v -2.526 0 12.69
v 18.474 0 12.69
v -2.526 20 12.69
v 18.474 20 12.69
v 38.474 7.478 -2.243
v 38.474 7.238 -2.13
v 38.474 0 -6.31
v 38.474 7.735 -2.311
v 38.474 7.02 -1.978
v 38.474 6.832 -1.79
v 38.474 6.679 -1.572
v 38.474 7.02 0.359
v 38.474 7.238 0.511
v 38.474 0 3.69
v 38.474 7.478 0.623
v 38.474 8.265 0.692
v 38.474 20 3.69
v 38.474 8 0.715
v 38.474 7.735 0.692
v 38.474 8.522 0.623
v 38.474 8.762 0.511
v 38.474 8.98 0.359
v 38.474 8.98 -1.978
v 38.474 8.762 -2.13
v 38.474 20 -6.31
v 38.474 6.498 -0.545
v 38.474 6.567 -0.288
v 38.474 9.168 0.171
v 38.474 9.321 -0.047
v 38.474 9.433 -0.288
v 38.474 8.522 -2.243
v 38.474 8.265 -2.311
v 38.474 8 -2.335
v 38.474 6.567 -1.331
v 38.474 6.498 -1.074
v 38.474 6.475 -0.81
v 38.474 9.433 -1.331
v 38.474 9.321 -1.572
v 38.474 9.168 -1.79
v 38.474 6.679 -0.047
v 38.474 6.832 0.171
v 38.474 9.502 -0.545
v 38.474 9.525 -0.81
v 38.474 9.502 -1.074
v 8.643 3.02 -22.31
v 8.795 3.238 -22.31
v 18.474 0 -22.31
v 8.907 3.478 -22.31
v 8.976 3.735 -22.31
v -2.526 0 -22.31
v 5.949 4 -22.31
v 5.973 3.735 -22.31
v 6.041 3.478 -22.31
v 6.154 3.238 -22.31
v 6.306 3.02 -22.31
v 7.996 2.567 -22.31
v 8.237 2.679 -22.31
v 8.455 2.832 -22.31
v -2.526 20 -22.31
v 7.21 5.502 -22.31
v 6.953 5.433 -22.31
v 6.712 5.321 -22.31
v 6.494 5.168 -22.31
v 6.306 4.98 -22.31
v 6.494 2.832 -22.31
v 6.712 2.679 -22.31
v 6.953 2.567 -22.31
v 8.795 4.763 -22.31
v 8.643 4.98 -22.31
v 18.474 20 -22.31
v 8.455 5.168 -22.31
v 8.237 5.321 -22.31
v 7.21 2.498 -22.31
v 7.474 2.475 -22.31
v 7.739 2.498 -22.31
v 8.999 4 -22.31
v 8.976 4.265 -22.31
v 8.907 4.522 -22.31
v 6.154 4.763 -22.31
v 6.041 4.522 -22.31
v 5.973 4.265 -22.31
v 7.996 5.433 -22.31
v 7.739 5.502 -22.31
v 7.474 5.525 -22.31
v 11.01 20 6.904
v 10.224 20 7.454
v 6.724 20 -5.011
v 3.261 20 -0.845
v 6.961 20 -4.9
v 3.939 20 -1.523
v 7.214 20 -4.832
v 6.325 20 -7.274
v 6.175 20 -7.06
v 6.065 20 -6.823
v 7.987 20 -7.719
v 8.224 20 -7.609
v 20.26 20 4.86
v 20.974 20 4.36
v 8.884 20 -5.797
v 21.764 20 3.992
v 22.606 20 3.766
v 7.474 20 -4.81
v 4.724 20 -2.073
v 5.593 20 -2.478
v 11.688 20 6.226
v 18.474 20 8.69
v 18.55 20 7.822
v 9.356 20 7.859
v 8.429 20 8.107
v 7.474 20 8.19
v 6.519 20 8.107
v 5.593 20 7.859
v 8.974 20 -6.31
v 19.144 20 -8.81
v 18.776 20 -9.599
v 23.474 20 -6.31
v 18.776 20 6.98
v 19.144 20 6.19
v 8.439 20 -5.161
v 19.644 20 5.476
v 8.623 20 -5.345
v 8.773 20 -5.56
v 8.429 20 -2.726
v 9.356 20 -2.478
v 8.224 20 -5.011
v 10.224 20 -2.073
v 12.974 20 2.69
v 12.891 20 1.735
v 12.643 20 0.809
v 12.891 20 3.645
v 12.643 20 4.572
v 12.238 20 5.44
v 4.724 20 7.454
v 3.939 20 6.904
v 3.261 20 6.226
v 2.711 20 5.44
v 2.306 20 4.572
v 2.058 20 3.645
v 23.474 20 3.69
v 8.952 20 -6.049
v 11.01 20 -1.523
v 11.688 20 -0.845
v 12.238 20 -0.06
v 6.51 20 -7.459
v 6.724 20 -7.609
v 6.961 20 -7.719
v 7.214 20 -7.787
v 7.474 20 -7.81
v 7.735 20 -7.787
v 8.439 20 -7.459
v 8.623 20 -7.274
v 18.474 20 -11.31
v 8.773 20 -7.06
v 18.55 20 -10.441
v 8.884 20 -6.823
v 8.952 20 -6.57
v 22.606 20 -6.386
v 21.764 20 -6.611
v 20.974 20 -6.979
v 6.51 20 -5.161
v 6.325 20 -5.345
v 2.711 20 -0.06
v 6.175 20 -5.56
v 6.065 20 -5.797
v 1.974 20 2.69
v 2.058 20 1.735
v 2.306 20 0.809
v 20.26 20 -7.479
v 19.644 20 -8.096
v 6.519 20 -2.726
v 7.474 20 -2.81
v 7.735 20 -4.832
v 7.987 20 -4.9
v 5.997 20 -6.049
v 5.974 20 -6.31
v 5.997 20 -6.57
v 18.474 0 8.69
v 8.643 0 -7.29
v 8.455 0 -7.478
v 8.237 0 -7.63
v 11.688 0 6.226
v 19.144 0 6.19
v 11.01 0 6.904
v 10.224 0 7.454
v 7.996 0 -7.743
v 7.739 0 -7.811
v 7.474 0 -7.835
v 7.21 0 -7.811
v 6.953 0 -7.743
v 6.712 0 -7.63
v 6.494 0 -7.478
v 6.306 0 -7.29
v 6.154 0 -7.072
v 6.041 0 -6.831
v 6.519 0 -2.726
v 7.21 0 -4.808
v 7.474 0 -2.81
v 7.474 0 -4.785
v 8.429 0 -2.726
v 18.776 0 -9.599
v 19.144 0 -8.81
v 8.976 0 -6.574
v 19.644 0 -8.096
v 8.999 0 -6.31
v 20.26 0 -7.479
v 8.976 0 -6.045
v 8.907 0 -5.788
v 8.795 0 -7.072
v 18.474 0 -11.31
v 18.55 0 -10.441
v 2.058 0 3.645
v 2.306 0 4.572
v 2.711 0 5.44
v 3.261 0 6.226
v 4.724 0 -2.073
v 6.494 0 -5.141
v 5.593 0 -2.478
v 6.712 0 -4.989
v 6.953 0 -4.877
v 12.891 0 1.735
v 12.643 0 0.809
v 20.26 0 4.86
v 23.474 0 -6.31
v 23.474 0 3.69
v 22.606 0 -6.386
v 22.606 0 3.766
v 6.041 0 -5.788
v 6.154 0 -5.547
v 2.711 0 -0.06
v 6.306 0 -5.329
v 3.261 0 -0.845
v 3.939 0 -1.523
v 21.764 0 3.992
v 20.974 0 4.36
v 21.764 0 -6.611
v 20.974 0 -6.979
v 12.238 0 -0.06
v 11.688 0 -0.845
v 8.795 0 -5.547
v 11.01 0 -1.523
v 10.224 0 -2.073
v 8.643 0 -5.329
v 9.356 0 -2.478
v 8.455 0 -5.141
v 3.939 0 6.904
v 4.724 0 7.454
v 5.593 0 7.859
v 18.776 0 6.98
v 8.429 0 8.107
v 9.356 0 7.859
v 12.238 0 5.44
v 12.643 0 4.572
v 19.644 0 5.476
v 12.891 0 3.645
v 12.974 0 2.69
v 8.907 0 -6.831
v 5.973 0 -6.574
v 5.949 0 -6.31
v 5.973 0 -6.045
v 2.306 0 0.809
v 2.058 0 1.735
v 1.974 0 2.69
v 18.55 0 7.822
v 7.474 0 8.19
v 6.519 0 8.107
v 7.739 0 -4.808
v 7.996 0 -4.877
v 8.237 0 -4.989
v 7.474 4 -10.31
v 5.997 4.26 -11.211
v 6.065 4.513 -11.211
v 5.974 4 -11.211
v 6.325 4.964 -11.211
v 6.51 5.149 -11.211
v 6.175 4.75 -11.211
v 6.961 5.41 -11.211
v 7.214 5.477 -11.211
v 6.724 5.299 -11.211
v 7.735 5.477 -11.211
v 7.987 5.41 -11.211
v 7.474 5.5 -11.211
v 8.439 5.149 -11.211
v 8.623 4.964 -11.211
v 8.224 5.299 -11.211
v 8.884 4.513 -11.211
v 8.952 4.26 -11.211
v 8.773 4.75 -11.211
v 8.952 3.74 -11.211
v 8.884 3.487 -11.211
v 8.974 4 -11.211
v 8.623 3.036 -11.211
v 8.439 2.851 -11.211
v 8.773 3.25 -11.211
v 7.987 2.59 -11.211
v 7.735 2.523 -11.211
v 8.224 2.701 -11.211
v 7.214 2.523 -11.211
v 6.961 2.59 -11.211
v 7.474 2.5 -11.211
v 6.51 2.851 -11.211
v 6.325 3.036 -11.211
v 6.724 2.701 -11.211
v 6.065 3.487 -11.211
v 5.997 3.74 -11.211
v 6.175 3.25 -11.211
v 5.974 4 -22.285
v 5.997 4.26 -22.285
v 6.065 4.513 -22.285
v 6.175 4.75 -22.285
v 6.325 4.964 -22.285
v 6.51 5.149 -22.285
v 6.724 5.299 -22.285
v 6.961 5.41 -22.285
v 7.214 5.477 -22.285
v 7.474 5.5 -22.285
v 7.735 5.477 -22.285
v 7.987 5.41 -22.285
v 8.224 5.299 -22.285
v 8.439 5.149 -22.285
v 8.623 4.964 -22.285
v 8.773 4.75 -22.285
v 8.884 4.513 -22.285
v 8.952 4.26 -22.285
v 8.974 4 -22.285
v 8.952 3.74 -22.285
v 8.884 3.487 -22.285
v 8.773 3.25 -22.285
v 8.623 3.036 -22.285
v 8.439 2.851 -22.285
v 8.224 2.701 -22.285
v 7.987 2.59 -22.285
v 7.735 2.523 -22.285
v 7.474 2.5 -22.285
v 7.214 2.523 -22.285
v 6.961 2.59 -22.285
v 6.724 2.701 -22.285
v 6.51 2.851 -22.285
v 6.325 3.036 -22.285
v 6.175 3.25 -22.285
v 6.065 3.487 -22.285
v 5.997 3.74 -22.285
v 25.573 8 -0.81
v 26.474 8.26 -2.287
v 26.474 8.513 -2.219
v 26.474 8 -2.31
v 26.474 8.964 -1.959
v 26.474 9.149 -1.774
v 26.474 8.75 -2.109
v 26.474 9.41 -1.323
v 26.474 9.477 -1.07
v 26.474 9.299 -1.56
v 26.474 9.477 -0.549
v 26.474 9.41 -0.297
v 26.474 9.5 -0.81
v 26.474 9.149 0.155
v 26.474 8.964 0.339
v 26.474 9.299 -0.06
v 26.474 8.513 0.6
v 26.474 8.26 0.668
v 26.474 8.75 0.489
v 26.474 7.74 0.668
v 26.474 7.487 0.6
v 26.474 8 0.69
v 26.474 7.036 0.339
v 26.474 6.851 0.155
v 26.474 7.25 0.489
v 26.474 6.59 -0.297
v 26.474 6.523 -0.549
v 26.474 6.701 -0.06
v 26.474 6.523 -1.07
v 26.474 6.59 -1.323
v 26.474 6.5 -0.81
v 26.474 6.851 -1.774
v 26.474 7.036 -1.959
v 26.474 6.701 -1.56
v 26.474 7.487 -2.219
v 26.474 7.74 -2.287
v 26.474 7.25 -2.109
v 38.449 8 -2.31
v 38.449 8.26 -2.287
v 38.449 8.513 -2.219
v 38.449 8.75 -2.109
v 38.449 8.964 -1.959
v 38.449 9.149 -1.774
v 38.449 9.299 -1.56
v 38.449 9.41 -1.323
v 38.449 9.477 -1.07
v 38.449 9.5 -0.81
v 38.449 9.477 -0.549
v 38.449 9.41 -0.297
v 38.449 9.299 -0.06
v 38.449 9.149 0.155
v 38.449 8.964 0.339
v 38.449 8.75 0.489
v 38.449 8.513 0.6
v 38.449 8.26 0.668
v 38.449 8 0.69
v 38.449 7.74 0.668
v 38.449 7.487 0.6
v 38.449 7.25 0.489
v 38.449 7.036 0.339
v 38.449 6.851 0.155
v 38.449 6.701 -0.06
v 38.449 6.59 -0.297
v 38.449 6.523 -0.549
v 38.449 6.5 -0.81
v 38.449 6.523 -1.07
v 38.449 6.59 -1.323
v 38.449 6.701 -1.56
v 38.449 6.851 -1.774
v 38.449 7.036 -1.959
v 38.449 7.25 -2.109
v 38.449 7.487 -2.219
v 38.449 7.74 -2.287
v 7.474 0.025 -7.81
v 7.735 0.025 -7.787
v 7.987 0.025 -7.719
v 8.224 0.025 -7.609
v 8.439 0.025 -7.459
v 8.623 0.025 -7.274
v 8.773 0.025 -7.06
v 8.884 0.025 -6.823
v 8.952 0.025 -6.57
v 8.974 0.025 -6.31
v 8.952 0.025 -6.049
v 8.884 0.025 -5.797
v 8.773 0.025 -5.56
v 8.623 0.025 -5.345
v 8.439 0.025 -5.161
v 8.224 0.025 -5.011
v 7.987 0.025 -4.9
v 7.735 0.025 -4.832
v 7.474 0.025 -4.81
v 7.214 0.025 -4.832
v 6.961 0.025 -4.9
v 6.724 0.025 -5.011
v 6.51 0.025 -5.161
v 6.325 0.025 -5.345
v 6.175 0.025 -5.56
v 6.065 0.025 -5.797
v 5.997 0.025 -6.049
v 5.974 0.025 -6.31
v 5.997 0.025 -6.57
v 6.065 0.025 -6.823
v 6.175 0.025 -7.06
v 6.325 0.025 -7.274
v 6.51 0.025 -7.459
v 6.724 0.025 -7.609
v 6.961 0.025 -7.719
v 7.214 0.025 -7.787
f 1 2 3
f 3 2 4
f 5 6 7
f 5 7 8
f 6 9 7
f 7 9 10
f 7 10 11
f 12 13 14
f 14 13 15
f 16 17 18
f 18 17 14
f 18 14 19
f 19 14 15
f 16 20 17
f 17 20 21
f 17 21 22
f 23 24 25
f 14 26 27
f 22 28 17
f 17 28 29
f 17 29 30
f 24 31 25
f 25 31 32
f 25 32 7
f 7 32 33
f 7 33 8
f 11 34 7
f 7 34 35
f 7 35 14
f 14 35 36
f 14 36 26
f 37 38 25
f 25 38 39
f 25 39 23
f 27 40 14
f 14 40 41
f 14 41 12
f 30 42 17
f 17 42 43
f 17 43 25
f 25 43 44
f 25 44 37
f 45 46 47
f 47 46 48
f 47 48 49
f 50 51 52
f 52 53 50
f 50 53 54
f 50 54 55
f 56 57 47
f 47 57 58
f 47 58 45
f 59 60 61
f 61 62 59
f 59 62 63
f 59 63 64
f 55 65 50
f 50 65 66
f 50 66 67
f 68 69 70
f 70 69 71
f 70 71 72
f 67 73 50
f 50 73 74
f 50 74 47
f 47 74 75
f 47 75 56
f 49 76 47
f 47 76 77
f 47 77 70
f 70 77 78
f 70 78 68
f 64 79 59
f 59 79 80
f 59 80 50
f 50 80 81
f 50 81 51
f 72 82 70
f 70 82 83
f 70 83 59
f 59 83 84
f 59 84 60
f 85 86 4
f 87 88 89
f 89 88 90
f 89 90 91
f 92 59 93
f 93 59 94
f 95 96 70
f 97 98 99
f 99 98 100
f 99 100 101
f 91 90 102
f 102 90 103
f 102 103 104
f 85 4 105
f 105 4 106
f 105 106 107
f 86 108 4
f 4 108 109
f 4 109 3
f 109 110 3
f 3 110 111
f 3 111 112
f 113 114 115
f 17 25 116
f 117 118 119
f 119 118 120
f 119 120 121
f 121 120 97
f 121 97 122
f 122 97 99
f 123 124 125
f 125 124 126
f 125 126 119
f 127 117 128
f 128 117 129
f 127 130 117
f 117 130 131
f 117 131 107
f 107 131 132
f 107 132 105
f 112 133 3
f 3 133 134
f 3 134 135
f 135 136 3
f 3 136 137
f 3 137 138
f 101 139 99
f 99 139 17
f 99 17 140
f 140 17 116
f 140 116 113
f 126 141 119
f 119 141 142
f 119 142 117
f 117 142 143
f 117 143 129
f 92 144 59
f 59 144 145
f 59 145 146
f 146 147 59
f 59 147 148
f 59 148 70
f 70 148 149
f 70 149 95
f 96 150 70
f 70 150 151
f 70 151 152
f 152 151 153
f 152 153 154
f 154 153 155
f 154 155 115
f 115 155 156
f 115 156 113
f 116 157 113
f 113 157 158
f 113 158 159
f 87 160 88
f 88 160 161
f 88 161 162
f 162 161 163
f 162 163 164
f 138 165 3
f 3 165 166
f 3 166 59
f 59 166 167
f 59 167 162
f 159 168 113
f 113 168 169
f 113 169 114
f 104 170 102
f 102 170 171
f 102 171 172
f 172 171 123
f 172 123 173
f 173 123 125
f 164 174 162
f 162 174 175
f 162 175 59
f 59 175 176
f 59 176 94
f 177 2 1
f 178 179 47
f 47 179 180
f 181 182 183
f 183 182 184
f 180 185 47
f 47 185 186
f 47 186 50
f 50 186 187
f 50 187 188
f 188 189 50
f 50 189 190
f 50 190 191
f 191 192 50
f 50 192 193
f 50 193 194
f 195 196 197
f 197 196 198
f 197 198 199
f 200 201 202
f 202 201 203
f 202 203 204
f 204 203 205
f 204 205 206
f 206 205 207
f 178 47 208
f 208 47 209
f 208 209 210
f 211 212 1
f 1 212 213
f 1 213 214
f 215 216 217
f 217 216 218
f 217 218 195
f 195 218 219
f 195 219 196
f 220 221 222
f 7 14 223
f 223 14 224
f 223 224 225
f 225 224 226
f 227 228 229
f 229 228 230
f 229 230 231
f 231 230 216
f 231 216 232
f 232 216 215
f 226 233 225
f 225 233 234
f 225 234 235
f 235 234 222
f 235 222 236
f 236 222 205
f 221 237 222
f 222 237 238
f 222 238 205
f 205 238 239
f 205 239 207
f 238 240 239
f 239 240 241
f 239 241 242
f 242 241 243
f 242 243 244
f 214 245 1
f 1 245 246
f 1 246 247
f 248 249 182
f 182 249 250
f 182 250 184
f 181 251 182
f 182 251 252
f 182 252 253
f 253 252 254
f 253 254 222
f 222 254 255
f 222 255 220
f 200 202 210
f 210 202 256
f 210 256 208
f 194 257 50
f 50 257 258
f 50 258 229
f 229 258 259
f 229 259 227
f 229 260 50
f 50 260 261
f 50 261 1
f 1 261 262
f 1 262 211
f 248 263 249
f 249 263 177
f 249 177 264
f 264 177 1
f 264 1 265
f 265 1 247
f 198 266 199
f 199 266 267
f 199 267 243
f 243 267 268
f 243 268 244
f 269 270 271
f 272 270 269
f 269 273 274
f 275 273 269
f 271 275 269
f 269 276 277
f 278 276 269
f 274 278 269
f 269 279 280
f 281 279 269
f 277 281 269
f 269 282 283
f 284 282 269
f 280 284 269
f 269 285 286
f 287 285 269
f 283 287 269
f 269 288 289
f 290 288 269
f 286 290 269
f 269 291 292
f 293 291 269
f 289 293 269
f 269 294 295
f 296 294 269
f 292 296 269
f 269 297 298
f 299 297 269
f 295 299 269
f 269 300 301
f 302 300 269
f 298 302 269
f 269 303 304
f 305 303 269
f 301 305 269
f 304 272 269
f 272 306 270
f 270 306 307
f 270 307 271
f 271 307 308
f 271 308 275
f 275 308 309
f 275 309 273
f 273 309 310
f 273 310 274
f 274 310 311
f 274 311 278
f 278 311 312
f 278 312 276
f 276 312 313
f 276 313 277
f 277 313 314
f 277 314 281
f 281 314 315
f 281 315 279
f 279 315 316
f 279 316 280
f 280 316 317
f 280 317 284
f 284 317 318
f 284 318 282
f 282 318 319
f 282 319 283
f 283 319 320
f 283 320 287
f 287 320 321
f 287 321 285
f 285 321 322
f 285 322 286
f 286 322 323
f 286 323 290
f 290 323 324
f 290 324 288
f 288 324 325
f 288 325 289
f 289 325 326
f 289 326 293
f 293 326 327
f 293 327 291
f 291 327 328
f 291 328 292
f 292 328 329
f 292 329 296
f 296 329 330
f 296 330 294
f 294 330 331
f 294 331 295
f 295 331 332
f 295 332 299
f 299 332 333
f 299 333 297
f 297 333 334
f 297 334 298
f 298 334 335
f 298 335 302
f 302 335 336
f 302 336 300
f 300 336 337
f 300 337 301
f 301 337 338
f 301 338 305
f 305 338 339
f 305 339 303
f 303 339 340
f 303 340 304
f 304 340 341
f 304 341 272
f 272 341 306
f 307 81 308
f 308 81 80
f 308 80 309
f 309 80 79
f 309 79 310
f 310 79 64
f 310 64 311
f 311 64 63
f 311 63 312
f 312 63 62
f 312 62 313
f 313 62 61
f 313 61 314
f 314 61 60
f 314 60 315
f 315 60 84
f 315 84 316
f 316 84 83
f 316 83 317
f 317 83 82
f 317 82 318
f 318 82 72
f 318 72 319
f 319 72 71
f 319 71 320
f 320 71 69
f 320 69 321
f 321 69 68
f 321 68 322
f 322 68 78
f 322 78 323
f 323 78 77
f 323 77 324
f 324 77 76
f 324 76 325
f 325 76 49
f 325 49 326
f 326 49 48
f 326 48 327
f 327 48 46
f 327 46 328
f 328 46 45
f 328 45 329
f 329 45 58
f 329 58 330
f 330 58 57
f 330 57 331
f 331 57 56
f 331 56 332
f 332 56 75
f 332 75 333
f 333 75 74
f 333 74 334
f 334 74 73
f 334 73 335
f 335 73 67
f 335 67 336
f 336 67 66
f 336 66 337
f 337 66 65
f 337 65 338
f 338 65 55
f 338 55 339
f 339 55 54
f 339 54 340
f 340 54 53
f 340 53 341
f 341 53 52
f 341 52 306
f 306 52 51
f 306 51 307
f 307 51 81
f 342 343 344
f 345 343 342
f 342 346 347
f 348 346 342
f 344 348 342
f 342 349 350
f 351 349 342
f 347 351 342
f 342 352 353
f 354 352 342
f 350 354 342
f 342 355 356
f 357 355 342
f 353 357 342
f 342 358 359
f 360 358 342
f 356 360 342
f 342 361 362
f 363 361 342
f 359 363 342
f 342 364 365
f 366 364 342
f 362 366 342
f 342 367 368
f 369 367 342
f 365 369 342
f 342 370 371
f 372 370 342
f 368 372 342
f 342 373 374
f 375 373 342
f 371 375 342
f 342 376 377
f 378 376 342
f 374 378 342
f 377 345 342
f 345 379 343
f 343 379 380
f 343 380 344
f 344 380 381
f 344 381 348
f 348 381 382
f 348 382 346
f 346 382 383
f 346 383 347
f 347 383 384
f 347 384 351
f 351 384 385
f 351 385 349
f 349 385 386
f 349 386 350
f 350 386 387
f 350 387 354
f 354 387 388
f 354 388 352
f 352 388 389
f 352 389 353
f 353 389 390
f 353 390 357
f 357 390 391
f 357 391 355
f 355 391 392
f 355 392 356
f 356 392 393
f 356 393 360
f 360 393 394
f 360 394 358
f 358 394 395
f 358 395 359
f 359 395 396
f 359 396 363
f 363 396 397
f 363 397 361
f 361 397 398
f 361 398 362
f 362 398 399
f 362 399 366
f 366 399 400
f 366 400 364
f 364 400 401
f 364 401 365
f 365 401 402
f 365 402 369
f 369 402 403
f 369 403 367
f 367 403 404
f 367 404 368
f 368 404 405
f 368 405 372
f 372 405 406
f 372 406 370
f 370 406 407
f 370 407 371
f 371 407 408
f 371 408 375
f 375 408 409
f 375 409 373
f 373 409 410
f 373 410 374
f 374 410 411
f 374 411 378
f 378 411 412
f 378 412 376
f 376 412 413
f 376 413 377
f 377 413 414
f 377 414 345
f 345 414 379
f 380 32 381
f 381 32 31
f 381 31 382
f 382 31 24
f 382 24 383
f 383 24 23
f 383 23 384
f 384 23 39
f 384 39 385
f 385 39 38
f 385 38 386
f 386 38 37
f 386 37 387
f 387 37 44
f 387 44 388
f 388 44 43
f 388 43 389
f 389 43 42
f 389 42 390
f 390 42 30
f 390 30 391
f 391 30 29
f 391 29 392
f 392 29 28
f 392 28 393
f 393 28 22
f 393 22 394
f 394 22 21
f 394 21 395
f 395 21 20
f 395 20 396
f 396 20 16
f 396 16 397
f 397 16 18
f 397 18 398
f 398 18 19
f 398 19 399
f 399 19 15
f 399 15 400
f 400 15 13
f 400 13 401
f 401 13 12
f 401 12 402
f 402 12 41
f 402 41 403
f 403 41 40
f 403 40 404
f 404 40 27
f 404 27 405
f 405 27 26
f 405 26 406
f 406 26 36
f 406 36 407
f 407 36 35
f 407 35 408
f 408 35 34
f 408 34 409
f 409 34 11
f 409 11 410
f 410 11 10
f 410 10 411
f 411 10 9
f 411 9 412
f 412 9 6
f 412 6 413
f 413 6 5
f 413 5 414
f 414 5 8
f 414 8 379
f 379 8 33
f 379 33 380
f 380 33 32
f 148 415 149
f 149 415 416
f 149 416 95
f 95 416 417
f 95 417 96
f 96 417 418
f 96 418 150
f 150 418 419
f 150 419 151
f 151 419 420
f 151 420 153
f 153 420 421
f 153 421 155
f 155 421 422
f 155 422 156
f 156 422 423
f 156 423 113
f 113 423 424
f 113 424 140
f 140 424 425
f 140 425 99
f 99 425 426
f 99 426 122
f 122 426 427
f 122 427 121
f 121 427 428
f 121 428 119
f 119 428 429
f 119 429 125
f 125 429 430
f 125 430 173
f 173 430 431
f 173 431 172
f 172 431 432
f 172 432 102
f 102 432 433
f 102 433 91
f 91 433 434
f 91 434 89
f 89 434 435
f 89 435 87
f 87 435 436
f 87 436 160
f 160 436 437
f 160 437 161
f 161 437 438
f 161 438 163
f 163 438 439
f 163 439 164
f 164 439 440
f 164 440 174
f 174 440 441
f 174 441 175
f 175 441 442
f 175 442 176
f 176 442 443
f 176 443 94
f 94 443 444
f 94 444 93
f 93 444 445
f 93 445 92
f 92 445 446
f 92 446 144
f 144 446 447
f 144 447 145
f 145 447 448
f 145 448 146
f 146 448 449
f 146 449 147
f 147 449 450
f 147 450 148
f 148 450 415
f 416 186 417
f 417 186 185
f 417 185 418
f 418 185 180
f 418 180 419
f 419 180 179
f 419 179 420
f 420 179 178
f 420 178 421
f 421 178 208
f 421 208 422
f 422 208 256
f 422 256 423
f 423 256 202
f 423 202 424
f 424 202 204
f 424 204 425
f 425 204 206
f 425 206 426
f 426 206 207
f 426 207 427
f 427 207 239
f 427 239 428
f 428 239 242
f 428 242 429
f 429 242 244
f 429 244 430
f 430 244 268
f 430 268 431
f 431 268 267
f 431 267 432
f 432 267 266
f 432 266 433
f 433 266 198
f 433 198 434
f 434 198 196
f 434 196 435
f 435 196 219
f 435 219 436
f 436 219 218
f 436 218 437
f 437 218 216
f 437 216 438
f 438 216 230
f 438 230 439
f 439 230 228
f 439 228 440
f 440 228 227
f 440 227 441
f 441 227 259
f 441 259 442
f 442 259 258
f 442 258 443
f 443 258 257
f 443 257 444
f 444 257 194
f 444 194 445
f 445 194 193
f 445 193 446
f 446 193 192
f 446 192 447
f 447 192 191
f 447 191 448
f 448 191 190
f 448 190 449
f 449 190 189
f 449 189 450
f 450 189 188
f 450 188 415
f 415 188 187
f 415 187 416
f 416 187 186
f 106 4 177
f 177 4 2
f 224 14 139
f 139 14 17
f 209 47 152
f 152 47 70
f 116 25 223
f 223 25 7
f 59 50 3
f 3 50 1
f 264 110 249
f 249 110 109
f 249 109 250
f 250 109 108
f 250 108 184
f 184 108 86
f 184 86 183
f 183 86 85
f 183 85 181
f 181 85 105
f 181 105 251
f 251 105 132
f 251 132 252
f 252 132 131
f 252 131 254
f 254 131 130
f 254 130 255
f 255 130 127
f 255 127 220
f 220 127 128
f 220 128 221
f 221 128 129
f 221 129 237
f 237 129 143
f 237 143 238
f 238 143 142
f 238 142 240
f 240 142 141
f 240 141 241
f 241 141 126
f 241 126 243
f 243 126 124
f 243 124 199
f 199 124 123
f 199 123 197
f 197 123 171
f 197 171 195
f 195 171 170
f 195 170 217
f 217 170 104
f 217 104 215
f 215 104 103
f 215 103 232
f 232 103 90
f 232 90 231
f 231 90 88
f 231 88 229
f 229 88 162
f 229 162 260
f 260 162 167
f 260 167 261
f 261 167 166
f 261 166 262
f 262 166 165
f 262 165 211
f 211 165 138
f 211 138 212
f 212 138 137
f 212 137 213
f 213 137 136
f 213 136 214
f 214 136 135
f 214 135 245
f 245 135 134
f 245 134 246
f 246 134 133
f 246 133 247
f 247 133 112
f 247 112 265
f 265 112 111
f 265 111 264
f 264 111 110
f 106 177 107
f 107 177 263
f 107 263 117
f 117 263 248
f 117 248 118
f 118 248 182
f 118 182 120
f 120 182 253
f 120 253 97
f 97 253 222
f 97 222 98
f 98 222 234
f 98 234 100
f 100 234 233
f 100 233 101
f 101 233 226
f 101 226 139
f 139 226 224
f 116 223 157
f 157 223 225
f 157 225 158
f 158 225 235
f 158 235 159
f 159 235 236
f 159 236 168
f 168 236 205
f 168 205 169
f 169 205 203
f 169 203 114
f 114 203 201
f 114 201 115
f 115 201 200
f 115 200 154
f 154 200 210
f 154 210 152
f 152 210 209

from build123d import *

# Parameters (mm, degrees)
SKETCH1_W                       = 49
SKETCH1_H                       = 35
BOSS_EXTRUDE1_DEPTH             = 20
F_3_0MM_DOWEL_HOLE1_D           = 3
F_3_0MM_DOWEL_HOLE1_DEPTH       = 11.098709071
F_3_0MM_DOWEL_HOLE1_CSINK_D     = 3.05
F_3_0MM_DOWEL_HOLE1_CSINK_ANGLE = 90
F_3_0MM_DOWEL_HOLE1_TIP         = 0.901290929
F_3_0MM_DOWEL_HOLE2_D           = 3
F_3_0MM_DOWEL_HOLE2_DEPTH       = 12
F_3_0MM_DOWEL_HOLE2_CSINK_D     = 3.05
F_3_0MM_DOWEL_HOLE2_CSINK_ANGLE = 90
F_3_0MM_DOWEL_HOLE2_TIP         = 0.901290929
F_3_0MM_DOWEL_HOLE3_D           = 3
F_3_0MM_DOWEL_HOLE3_CSINK_D     = 3.05
F_3_0MM_DOWEL_HOLE3_CSINK_ANGLE = 90
SKETCH14_W                      = 8
SKETCH14_H                      = 35
SKETCH14_W_2                    = 20
SKETCH14_H_2                    = 16
SKETCH14_H_3                    = 9
CUT_EXTRUDE3_DEPTH              = 28
SKETCH15_R                      = 5.5
CUT_EXTRUDE4_DEPTH              = 30
FILLET1_R                       = 5


with BuildPart() as part:
    # Sketch1 → Boss-Extrude1 (new body)
    with BuildSketch(Plane(origin=(0, 0, 0), x_dir=(1, 0, 0), z_dir=(0, 1, 0))):
        with Locations((13.974428044, 4.809594096)):
            Rectangle(SKETCH1_W, SKETCH1_H)
    extrude(amount=BOSS_EXTRUDE1_DEPTH)

    # Ø3.0mm Dowel Hole1
    with Locations(Plane(origin=(0, 0, -22.309594096), x_dir=(-1, 0, 0), z_dir=(0, 0, -1))):
        with Locations((-7.474428044, 4)):
            CounterSinkHole(F_3_0MM_DOWEL_HOLE1_D / 2, F_3_0MM_DOWEL_HOLE1_CSINK_D / 2, depth=F_3_0MM_DOWEL_HOLE1_DEPTH, counter_sink_angle=F_3_0MM_DOWEL_HOLE1_CSINK_ANGLE)
            with Locations((0, 0, -(F_3_0MM_DOWEL_HOLE1_DEPTH + F_3_0MM_DOWEL_HOLE1_TIP / 2))):  # 118° drill point
                Cone(0, F_3_0MM_DOWEL_HOLE1_D / 2, F_3_0MM_DOWEL_HOLE1_TIP, mode=Mode.SUBTRACT)

    # Ø3.0mm Dowel Hole2
    with Locations(Plane(origin=(38.474428044, 0, 0), x_dir=(0, 0, -1), z_dir=(1, 0, 0))):
        with Locations((0.809594096, 8)):
            CounterSinkHole(F_3_0MM_DOWEL_HOLE2_D / 2, F_3_0MM_DOWEL_HOLE2_CSINK_D / 2, depth=F_3_0MM_DOWEL_HOLE2_DEPTH, counter_sink_angle=F_3_0MM_DOWEL_HOLE2_CSINK_ANGLE)
            with Locations((0, 0, -(F_3_0MM_DOWEL_HOLE2_DEPTH + F_3_0MM_DOWEL_HOLE2_TIP / 2))):  # 118° drill point
                Cone(0, F_3_0MM_DOWEL_HOLE2_D / 2, F_3_0MM_DOWEL_HOLE2_TIP, mode=Mode.SUBTRACT)

    # Ø3.0mm Dowel Hole3 (through all)
    with Locations(Plane(origin=(0, 0, 0), x_dir=(-1, 0, 0), z_dir=(0, -1, 0))):
        with Locations((-7.474428044, 6.309594096)):
            CounterSinkHole(F_3_0MM_DOWEL_HOLE3_D / 2, F_3_0MM_DOWEL_HOLE3_CSINK_D / 2, counter_sink_angle=F_3_0MM_DOWEL_HOLE3_CSINK_ANGLE)

    # Sketch14 → Cut-Extrude3 (cut)
    with BuildSketch(Plane(origin=(0, 20, 0), x_dir=(1, 0, 0), z_dir=(0, 1, 0))):
        with Locations((-6.525571956, 4.809594096)):
            Rectangle(SKETCH14_W, SKETCH14_H)
        with Locations((28.474428044, 14.309594096)):
            Rectangle(SKETCH14_W_2, SKETCH14_H_2)
        with Locations((28.474428044, -8.190405904)):
            Rectangle(SKETCH14_W_2, SKETCH14_H_3)
    extrude(amount=-CUT_EXTRUDE3_DEPTH, mode=Mode.SUBTRACT)

    # Sketch15 → Cut-Extrude4 (cut)
    with BuildSketch(Plane(origin=(0, 20, 0), x_dir=(1, 0, 0), z_dir=(0, 1, 0))):
        with Locations((7.474428044, -2.690405904)):
            Circle(SKETCH15_R)
    extrude(amount=-CUT_EXTRUDE4_DEPTH, mode=Mode.SUBTRACT)

    # Fillet1
    fillet1_edges = [part.edges().sort_by_distance(p)[0] for p in [
        (18.474428044, 10, -6.309594096),
        (18.474428044, 10, 3.690405904),
    ]]
    fillet(fillet1_edges, radius=FILLET1_R)


solid = part.part
